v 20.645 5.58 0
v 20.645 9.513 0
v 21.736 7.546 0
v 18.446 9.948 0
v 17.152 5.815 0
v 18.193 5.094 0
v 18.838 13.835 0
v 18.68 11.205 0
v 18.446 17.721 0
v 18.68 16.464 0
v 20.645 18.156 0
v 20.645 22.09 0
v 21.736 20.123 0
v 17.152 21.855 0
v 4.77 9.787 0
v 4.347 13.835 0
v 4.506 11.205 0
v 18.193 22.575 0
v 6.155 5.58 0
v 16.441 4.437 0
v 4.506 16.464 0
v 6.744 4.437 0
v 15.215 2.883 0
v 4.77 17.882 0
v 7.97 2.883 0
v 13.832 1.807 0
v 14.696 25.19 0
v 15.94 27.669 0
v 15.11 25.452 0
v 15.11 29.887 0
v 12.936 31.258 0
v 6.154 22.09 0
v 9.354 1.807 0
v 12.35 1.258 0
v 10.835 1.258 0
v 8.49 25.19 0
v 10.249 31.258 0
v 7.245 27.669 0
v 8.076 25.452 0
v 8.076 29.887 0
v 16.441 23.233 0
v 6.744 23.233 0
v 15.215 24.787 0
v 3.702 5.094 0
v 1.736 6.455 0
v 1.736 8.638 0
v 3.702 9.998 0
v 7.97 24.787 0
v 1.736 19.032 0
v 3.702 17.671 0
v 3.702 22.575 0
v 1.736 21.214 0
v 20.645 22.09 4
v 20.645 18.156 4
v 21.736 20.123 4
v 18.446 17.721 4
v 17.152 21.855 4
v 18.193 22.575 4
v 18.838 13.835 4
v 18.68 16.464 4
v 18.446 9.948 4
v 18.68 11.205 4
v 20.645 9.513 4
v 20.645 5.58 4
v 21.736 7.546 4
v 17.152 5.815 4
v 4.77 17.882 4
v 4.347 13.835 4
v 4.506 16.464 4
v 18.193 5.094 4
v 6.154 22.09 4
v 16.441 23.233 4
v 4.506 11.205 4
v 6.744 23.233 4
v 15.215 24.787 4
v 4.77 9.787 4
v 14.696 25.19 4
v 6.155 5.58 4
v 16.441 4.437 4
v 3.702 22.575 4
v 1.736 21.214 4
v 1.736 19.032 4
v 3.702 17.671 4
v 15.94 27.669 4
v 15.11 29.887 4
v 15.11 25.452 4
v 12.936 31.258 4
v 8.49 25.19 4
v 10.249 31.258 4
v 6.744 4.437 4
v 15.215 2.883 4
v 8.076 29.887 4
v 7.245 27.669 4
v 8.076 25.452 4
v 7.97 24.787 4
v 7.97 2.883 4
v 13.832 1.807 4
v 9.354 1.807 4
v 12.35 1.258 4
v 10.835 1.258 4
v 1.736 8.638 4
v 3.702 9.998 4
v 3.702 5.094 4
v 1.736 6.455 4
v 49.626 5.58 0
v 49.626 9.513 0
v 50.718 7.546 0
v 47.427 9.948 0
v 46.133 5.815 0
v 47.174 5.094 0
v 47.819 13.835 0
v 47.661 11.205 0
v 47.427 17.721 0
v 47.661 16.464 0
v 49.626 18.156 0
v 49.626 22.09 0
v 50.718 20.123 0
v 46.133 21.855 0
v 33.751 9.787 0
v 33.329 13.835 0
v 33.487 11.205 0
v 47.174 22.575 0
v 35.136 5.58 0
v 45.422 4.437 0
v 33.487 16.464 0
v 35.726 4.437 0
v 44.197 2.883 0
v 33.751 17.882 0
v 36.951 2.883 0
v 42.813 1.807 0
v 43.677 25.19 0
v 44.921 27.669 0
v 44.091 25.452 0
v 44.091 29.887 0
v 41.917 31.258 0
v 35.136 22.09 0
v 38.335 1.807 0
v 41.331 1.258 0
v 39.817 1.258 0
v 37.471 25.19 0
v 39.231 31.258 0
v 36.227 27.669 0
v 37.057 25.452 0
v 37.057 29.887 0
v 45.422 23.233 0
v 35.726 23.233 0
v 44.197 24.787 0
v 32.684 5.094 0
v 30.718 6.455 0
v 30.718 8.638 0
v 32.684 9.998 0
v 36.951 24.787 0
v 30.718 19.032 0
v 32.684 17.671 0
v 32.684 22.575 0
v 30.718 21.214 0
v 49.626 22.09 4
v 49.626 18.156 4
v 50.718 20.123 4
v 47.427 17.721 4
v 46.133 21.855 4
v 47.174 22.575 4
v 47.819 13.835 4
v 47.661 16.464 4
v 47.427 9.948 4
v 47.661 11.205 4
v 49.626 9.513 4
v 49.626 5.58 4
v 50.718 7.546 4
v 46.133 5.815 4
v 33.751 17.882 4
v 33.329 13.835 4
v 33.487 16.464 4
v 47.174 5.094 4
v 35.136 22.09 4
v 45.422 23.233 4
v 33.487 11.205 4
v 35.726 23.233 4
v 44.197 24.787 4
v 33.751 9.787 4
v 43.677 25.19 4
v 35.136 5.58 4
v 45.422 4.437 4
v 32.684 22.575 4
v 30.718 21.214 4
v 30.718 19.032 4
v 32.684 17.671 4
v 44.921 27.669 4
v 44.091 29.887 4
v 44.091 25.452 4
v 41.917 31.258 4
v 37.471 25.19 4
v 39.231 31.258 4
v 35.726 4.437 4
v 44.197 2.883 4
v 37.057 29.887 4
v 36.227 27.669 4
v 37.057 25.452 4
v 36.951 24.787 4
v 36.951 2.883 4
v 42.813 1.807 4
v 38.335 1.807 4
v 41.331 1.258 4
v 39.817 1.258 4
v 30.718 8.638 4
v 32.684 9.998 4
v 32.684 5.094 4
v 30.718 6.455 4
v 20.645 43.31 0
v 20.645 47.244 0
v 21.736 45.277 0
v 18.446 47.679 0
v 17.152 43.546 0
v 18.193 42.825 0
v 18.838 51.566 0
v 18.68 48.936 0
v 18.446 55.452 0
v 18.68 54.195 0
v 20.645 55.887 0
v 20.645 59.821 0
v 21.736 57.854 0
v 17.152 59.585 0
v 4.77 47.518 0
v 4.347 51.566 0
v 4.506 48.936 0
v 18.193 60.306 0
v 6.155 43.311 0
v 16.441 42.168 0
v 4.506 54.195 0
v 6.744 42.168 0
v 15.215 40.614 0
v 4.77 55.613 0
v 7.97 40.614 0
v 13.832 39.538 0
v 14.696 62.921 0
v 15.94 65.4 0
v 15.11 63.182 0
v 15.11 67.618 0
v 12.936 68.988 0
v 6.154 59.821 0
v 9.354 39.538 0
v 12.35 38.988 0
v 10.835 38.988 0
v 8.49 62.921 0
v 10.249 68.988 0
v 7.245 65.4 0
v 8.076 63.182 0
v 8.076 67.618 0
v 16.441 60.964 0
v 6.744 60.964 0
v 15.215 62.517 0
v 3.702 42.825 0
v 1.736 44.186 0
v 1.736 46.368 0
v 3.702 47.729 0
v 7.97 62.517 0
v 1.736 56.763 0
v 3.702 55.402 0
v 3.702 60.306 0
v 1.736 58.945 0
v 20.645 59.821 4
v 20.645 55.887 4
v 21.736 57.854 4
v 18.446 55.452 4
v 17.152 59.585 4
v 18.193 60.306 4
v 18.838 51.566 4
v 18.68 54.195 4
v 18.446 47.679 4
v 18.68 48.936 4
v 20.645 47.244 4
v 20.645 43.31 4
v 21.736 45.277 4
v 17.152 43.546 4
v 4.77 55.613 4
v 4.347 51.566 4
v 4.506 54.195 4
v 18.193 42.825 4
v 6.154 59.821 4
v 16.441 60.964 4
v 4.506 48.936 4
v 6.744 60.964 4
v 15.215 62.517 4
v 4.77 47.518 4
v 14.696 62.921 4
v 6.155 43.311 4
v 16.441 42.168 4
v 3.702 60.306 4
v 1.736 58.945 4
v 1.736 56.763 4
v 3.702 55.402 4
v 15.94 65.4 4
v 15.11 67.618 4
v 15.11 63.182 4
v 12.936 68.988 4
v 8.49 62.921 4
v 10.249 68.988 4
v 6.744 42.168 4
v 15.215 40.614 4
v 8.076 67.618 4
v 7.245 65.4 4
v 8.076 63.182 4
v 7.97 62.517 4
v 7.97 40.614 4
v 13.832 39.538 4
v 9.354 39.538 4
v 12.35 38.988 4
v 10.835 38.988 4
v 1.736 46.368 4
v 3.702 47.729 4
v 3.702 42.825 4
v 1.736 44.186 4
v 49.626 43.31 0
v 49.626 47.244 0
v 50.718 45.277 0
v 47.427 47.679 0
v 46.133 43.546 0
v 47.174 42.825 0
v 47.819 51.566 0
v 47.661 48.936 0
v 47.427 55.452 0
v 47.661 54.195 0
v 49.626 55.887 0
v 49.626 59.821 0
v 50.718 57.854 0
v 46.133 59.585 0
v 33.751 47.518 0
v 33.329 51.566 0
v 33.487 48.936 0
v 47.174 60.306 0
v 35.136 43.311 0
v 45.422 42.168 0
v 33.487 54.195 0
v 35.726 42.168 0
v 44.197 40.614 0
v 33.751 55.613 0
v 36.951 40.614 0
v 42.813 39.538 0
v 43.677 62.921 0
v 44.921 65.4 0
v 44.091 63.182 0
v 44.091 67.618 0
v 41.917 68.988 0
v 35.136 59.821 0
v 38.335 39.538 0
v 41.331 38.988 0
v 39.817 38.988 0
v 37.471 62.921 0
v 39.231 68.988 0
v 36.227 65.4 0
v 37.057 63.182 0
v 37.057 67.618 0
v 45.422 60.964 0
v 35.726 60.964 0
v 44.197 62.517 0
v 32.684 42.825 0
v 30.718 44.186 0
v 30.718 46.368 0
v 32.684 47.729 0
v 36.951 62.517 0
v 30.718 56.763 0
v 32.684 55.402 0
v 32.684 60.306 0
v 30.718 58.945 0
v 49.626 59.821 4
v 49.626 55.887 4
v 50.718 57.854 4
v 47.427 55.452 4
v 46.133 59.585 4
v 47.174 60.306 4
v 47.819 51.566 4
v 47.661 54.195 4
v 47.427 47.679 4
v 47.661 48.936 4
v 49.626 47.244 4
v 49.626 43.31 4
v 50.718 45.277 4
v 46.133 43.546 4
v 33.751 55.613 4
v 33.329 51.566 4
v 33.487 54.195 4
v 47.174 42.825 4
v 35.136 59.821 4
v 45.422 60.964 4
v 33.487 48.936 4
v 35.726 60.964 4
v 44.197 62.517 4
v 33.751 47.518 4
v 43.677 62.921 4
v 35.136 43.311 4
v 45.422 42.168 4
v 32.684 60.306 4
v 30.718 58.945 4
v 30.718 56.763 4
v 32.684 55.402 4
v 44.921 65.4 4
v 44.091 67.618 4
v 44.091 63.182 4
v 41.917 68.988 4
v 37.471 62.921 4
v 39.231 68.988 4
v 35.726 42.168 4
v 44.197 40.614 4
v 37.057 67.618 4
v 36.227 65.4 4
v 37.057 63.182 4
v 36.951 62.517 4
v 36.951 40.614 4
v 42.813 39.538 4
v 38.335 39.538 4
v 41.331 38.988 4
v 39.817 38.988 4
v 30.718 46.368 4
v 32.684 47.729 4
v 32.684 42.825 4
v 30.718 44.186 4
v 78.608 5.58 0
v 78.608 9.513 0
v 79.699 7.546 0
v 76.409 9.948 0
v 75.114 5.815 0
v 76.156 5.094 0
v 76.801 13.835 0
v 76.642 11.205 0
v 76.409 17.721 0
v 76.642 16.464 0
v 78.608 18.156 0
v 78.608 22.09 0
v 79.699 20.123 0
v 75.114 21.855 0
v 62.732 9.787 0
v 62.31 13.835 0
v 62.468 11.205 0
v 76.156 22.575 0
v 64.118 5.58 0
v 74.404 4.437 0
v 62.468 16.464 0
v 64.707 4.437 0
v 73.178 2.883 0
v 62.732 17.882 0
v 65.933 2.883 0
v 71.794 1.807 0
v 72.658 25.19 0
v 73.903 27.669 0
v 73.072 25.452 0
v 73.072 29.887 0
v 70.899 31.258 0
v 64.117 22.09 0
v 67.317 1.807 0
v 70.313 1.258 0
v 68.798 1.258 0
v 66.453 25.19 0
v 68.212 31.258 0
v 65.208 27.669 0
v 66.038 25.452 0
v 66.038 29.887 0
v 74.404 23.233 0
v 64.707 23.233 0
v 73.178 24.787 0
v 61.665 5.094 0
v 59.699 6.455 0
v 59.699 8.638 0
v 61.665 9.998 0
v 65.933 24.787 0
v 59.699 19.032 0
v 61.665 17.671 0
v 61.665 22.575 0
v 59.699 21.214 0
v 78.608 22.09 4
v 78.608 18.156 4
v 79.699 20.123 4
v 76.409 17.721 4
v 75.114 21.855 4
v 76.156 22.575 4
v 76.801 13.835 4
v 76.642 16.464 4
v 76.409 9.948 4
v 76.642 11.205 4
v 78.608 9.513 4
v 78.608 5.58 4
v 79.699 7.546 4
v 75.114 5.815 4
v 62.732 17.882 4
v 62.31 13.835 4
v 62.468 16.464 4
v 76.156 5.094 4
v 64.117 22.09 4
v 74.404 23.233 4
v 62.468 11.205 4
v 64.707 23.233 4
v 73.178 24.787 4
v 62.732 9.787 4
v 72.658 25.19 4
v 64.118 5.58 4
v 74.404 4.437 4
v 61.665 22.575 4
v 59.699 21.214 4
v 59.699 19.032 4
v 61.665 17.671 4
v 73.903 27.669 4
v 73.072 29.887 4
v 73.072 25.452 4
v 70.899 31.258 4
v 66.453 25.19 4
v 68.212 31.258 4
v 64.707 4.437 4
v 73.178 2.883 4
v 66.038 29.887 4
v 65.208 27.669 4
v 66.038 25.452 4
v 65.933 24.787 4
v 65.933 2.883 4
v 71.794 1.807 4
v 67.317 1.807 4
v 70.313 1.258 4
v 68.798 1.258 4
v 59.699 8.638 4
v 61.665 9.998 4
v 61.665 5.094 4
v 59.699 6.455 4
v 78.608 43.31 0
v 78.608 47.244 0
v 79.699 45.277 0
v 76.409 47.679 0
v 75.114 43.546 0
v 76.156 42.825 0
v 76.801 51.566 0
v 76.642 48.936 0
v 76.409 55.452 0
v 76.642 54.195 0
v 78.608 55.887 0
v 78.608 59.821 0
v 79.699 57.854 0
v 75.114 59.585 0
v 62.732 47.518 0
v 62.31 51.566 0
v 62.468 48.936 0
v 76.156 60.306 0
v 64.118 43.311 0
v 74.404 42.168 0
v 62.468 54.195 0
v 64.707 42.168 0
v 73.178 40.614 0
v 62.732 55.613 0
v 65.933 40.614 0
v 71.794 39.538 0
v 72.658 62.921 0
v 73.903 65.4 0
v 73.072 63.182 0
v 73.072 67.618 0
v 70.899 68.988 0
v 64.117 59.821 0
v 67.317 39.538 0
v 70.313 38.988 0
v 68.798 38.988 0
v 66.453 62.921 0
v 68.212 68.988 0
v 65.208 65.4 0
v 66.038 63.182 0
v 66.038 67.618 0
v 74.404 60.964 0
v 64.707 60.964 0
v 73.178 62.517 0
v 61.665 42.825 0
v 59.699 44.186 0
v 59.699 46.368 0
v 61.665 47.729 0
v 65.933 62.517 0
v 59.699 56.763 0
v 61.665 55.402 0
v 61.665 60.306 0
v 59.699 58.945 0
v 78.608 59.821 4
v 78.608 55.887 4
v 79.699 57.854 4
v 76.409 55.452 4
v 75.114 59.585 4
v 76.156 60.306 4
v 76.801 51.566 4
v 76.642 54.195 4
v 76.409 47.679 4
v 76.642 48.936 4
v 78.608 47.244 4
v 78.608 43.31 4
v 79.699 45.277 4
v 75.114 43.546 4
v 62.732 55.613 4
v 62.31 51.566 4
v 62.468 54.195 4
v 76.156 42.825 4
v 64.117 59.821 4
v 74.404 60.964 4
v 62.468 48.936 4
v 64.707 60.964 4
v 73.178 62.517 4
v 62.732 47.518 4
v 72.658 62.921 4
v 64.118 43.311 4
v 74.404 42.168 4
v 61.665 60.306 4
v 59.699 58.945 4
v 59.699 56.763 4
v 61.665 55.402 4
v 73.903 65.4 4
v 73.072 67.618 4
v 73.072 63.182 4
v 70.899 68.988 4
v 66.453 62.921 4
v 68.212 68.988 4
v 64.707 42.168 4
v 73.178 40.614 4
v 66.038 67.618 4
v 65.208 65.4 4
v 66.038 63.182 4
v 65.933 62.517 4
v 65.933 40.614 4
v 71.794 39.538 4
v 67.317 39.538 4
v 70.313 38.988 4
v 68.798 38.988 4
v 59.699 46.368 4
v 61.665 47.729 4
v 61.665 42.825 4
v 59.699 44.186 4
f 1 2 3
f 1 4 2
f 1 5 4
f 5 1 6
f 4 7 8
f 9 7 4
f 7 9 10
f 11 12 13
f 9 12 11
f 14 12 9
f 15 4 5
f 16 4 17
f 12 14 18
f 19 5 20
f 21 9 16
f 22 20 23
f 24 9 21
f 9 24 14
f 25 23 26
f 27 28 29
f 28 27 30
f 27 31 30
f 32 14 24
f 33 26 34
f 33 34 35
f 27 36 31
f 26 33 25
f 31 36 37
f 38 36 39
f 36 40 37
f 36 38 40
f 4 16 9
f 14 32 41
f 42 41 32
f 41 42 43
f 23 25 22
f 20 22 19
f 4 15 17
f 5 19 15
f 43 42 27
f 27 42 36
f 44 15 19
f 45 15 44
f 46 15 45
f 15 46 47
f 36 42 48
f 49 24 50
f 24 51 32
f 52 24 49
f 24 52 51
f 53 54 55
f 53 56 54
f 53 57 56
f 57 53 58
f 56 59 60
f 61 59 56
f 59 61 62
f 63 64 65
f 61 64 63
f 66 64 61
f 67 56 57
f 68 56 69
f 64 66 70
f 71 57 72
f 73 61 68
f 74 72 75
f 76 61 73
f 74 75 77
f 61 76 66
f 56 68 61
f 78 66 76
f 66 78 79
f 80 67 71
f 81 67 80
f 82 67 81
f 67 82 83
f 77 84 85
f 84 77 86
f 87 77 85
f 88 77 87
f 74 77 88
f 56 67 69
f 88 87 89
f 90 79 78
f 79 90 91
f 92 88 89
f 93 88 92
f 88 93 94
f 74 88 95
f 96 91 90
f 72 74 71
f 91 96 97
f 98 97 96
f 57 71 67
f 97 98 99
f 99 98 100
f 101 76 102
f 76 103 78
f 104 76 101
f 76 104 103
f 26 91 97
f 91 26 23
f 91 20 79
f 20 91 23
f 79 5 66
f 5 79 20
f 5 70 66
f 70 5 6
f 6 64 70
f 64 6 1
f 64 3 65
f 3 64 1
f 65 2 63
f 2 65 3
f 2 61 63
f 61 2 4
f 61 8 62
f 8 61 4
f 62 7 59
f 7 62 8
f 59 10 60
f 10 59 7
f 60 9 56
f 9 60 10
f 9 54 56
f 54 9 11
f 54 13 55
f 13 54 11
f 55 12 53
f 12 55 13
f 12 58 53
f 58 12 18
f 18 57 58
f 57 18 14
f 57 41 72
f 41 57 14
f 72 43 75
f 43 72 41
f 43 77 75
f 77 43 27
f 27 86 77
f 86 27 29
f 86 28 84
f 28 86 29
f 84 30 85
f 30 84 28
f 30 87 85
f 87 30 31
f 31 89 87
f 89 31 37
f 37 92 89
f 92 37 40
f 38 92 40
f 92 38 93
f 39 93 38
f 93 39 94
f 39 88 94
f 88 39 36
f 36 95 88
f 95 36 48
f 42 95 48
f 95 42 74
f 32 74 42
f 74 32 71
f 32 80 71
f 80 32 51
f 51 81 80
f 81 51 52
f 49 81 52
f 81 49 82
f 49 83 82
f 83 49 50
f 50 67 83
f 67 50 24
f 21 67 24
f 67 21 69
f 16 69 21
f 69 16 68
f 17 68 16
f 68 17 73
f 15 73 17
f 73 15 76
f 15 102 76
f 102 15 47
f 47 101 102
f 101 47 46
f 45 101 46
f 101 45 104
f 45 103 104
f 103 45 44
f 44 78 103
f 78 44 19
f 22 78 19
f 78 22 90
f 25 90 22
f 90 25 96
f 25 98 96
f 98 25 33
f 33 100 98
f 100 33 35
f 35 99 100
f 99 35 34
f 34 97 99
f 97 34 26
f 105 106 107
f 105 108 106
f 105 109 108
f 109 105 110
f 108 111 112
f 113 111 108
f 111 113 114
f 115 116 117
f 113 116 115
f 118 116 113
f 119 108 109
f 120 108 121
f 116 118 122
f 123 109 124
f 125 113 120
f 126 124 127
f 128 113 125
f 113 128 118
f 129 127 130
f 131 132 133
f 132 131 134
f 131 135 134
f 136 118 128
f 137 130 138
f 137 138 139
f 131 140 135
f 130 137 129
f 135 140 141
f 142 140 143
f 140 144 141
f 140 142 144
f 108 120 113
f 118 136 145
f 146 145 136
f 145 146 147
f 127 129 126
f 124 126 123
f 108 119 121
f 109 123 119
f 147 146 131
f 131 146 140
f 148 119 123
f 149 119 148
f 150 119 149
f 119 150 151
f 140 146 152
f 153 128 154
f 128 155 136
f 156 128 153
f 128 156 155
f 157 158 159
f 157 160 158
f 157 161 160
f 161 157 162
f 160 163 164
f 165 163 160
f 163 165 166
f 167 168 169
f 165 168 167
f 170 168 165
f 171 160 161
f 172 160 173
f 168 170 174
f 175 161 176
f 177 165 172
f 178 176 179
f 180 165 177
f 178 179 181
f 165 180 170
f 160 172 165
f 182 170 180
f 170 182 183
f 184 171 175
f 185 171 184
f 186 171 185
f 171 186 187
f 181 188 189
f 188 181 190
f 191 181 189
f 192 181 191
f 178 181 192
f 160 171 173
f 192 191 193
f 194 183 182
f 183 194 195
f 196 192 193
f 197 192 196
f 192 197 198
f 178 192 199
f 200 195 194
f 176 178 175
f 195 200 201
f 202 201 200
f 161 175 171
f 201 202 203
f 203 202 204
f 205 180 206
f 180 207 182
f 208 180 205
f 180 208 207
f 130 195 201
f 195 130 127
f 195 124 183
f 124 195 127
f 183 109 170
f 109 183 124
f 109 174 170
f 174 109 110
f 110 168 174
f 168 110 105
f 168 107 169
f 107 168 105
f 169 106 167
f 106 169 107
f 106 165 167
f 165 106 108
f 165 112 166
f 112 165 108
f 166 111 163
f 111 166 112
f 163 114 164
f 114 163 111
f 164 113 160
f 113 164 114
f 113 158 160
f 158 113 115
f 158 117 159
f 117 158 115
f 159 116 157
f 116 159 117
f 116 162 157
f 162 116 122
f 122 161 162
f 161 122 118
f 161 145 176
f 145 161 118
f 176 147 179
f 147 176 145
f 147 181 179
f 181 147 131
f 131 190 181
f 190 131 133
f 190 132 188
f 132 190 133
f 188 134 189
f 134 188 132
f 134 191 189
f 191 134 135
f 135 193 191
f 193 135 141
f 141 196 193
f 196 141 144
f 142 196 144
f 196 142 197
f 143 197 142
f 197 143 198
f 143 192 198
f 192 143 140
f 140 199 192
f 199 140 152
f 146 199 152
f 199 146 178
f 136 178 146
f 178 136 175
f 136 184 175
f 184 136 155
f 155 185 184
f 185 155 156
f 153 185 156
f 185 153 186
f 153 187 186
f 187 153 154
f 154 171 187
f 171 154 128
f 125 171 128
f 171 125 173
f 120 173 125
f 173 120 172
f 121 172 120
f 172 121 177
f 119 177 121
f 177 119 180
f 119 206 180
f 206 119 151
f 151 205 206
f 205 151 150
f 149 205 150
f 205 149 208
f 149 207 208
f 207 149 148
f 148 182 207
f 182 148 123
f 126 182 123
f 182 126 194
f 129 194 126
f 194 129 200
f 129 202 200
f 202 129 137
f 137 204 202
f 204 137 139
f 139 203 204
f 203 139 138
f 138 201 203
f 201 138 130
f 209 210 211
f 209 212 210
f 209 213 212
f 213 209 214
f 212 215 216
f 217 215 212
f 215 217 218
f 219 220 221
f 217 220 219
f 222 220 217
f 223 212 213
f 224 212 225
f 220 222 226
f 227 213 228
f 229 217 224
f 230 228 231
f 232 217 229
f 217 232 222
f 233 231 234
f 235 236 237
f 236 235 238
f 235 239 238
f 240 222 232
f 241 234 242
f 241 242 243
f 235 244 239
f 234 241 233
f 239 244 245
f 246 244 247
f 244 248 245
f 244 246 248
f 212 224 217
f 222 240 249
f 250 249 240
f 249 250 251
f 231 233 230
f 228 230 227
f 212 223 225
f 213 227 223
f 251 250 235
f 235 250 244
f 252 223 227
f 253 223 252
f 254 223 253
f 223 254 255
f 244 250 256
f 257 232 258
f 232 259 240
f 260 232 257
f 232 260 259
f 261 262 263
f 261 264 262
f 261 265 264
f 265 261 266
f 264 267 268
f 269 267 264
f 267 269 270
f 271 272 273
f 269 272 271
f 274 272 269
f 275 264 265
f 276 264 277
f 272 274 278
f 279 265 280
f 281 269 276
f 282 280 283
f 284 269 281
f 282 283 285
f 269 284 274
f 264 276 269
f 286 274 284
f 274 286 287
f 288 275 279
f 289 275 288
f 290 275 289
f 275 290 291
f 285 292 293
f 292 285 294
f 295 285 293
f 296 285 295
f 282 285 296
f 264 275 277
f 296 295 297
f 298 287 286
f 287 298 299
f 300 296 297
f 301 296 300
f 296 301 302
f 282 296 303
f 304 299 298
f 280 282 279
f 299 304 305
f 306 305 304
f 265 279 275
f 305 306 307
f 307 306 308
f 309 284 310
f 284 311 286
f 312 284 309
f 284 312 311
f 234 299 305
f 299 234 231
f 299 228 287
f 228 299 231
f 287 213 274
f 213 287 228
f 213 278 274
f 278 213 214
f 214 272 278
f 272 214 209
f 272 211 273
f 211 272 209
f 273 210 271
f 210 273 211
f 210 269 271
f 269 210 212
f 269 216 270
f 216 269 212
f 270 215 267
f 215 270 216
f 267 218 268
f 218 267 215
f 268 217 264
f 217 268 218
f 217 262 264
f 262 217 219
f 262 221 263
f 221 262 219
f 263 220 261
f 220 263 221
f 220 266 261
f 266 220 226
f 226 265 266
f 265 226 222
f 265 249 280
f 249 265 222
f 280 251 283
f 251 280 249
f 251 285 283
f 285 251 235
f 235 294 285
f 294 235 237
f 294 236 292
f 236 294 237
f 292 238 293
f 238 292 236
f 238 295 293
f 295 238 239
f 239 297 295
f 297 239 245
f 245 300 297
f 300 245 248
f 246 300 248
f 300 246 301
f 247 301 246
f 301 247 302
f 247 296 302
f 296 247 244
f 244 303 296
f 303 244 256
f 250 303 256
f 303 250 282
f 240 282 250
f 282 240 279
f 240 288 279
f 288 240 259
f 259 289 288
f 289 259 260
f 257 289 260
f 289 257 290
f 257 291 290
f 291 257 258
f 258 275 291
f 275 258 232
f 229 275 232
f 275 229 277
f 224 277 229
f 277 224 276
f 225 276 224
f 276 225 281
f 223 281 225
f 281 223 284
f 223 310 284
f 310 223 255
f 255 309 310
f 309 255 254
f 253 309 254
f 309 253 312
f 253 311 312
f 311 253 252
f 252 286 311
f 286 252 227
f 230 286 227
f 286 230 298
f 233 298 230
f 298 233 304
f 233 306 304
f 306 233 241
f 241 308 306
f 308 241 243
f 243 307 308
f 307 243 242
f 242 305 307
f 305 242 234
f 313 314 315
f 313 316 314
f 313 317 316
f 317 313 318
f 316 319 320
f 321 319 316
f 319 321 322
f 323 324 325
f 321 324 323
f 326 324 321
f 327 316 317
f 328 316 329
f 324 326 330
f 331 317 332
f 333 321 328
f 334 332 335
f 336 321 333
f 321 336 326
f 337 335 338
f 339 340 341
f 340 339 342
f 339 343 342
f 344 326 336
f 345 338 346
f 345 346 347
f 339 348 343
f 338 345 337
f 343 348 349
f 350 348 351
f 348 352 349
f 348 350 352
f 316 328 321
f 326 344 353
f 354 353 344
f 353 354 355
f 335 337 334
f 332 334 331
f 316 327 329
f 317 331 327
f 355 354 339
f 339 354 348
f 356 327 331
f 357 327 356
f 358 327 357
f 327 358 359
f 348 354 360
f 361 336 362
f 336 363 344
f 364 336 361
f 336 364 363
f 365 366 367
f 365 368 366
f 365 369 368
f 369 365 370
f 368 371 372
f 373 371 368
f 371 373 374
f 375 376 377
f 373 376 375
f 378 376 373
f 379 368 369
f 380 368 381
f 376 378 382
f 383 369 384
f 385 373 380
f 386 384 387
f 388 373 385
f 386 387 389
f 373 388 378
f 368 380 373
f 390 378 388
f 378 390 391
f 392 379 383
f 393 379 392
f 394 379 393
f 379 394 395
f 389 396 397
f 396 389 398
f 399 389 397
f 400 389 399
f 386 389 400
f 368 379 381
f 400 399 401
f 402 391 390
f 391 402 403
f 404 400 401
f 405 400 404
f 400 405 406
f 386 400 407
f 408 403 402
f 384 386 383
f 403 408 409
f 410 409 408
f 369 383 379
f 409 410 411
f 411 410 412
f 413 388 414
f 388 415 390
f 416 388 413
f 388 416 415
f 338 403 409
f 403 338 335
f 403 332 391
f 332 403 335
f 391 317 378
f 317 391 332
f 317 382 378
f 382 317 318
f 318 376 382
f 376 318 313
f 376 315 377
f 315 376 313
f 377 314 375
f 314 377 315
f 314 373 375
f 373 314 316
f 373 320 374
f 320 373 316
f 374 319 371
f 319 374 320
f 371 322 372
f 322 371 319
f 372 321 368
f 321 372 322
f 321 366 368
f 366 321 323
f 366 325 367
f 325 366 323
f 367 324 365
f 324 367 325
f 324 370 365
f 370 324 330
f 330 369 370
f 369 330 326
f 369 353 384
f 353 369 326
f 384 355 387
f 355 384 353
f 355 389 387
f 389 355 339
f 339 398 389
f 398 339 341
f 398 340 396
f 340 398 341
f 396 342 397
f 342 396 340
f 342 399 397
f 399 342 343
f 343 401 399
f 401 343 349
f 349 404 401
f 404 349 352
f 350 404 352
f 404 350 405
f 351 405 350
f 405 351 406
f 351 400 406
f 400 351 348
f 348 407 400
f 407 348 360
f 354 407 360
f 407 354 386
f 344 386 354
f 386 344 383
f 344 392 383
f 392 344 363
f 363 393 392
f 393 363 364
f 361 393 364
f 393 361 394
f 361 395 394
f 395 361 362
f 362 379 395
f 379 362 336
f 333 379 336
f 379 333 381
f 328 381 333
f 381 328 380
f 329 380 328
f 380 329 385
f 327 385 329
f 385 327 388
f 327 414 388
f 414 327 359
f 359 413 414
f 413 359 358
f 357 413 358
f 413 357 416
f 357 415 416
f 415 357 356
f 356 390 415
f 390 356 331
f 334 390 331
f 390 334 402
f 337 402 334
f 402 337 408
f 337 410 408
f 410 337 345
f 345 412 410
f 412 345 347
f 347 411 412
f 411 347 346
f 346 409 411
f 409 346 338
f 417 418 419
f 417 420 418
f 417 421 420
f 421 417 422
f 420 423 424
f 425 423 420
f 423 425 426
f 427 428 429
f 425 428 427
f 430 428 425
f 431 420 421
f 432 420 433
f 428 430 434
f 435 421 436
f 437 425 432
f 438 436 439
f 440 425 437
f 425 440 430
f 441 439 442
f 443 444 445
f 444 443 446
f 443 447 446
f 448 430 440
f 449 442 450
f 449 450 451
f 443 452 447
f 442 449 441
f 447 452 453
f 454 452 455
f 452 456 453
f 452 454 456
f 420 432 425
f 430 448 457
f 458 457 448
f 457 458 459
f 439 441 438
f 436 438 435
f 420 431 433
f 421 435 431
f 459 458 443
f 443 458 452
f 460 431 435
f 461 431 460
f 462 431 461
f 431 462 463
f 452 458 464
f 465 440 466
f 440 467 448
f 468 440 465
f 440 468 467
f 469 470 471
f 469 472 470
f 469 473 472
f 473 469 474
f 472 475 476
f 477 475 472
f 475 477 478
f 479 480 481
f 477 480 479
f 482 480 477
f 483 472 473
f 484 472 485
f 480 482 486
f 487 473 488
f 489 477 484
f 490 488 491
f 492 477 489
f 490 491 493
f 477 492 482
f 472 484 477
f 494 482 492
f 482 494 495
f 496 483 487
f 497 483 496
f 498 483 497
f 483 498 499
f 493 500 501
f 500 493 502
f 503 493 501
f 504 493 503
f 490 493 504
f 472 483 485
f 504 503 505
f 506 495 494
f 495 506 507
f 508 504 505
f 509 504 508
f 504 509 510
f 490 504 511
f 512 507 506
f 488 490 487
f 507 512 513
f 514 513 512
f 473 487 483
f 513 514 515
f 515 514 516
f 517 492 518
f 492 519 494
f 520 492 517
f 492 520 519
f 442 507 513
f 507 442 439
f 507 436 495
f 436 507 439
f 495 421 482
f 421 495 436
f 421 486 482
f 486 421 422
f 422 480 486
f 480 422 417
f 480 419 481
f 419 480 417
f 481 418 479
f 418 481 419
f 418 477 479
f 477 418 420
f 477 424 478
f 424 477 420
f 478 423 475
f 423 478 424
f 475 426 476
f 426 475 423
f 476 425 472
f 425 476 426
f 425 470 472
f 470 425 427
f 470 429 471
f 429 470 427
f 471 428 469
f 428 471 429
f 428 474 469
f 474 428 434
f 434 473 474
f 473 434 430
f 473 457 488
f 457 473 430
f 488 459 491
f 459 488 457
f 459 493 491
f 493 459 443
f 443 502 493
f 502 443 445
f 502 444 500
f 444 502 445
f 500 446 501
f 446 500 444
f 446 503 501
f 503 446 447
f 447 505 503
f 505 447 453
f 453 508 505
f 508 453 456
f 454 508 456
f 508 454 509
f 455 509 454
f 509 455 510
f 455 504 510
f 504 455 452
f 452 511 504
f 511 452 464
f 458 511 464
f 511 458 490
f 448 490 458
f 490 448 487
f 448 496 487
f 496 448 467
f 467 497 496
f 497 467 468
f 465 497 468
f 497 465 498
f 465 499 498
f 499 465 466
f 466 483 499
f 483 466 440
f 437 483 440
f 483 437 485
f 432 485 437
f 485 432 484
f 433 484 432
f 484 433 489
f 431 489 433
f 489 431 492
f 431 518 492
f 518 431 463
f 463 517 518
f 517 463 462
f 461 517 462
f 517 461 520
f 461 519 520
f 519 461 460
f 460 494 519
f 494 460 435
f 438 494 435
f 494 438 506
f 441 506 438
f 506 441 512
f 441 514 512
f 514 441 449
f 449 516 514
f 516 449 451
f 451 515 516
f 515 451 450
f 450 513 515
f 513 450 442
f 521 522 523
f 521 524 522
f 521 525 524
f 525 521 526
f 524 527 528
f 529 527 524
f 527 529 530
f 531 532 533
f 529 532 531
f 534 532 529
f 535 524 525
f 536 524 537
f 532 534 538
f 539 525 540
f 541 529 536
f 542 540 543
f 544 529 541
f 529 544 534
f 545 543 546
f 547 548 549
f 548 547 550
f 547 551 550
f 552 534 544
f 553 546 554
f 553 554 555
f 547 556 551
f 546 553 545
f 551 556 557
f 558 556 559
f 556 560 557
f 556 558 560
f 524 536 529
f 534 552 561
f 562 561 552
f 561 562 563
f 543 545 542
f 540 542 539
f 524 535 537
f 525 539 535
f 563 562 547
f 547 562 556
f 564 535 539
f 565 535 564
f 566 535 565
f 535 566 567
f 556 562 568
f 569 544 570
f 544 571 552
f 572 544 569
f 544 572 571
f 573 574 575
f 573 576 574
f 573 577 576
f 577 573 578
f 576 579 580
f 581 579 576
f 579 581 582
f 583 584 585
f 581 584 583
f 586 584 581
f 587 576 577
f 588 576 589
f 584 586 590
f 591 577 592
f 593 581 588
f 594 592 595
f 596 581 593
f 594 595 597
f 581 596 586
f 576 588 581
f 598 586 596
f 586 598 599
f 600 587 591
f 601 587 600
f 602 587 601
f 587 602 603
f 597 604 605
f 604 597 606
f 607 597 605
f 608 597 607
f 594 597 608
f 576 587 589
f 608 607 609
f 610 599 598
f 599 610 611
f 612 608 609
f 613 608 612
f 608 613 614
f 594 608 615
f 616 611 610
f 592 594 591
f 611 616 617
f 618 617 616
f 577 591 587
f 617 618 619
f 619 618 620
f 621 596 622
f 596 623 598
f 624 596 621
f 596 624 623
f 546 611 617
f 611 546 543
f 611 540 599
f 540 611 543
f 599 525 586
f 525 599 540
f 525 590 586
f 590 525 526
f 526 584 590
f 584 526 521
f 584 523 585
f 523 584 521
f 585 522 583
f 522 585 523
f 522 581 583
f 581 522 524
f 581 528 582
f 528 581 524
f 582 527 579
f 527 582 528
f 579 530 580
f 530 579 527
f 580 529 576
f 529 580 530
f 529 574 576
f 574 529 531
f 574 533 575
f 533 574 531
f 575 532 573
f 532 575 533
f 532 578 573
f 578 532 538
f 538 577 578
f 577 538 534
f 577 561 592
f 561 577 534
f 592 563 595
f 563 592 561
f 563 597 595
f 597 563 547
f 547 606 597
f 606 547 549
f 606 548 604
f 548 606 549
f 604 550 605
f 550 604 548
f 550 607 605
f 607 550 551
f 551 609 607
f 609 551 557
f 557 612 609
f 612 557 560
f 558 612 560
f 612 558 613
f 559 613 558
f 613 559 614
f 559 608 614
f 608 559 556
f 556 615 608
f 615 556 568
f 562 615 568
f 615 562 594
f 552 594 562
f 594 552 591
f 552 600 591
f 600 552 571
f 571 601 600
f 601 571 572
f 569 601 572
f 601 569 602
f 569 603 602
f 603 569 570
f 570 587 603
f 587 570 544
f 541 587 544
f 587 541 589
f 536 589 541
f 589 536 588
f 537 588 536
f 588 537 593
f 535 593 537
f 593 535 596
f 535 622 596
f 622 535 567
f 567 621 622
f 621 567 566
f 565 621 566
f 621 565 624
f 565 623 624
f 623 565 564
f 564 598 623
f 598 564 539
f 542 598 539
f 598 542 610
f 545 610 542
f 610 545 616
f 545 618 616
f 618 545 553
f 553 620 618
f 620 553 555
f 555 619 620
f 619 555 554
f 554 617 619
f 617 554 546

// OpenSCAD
z=4;
H=30;
W=20;

module turtle(x,y) {
 resize ([W,H])
 translate([x+W/2-2,y+H/2-4,0]) {

 linear_extrude(height = z) {
 resize([10,20]) circle(50);
 translate([5,5,0]) circle(2);
 translate([-5,5,0]) circle(2);
 translate([5,-5,0]) circle(2);
 translate([-5,-5,0]) circle(2);
 translate([0,11,0]) circle(3);
 }

 } 
}

turtle(0,0);
turtle(W,0);
turtle(0,H);
turtle(W,H);
turtle(W*2,0);
turtle(W*2,H);

//turtle(25,10);
//turtle(25,25);
//turtle(40,25);
//turtle(40,10);
